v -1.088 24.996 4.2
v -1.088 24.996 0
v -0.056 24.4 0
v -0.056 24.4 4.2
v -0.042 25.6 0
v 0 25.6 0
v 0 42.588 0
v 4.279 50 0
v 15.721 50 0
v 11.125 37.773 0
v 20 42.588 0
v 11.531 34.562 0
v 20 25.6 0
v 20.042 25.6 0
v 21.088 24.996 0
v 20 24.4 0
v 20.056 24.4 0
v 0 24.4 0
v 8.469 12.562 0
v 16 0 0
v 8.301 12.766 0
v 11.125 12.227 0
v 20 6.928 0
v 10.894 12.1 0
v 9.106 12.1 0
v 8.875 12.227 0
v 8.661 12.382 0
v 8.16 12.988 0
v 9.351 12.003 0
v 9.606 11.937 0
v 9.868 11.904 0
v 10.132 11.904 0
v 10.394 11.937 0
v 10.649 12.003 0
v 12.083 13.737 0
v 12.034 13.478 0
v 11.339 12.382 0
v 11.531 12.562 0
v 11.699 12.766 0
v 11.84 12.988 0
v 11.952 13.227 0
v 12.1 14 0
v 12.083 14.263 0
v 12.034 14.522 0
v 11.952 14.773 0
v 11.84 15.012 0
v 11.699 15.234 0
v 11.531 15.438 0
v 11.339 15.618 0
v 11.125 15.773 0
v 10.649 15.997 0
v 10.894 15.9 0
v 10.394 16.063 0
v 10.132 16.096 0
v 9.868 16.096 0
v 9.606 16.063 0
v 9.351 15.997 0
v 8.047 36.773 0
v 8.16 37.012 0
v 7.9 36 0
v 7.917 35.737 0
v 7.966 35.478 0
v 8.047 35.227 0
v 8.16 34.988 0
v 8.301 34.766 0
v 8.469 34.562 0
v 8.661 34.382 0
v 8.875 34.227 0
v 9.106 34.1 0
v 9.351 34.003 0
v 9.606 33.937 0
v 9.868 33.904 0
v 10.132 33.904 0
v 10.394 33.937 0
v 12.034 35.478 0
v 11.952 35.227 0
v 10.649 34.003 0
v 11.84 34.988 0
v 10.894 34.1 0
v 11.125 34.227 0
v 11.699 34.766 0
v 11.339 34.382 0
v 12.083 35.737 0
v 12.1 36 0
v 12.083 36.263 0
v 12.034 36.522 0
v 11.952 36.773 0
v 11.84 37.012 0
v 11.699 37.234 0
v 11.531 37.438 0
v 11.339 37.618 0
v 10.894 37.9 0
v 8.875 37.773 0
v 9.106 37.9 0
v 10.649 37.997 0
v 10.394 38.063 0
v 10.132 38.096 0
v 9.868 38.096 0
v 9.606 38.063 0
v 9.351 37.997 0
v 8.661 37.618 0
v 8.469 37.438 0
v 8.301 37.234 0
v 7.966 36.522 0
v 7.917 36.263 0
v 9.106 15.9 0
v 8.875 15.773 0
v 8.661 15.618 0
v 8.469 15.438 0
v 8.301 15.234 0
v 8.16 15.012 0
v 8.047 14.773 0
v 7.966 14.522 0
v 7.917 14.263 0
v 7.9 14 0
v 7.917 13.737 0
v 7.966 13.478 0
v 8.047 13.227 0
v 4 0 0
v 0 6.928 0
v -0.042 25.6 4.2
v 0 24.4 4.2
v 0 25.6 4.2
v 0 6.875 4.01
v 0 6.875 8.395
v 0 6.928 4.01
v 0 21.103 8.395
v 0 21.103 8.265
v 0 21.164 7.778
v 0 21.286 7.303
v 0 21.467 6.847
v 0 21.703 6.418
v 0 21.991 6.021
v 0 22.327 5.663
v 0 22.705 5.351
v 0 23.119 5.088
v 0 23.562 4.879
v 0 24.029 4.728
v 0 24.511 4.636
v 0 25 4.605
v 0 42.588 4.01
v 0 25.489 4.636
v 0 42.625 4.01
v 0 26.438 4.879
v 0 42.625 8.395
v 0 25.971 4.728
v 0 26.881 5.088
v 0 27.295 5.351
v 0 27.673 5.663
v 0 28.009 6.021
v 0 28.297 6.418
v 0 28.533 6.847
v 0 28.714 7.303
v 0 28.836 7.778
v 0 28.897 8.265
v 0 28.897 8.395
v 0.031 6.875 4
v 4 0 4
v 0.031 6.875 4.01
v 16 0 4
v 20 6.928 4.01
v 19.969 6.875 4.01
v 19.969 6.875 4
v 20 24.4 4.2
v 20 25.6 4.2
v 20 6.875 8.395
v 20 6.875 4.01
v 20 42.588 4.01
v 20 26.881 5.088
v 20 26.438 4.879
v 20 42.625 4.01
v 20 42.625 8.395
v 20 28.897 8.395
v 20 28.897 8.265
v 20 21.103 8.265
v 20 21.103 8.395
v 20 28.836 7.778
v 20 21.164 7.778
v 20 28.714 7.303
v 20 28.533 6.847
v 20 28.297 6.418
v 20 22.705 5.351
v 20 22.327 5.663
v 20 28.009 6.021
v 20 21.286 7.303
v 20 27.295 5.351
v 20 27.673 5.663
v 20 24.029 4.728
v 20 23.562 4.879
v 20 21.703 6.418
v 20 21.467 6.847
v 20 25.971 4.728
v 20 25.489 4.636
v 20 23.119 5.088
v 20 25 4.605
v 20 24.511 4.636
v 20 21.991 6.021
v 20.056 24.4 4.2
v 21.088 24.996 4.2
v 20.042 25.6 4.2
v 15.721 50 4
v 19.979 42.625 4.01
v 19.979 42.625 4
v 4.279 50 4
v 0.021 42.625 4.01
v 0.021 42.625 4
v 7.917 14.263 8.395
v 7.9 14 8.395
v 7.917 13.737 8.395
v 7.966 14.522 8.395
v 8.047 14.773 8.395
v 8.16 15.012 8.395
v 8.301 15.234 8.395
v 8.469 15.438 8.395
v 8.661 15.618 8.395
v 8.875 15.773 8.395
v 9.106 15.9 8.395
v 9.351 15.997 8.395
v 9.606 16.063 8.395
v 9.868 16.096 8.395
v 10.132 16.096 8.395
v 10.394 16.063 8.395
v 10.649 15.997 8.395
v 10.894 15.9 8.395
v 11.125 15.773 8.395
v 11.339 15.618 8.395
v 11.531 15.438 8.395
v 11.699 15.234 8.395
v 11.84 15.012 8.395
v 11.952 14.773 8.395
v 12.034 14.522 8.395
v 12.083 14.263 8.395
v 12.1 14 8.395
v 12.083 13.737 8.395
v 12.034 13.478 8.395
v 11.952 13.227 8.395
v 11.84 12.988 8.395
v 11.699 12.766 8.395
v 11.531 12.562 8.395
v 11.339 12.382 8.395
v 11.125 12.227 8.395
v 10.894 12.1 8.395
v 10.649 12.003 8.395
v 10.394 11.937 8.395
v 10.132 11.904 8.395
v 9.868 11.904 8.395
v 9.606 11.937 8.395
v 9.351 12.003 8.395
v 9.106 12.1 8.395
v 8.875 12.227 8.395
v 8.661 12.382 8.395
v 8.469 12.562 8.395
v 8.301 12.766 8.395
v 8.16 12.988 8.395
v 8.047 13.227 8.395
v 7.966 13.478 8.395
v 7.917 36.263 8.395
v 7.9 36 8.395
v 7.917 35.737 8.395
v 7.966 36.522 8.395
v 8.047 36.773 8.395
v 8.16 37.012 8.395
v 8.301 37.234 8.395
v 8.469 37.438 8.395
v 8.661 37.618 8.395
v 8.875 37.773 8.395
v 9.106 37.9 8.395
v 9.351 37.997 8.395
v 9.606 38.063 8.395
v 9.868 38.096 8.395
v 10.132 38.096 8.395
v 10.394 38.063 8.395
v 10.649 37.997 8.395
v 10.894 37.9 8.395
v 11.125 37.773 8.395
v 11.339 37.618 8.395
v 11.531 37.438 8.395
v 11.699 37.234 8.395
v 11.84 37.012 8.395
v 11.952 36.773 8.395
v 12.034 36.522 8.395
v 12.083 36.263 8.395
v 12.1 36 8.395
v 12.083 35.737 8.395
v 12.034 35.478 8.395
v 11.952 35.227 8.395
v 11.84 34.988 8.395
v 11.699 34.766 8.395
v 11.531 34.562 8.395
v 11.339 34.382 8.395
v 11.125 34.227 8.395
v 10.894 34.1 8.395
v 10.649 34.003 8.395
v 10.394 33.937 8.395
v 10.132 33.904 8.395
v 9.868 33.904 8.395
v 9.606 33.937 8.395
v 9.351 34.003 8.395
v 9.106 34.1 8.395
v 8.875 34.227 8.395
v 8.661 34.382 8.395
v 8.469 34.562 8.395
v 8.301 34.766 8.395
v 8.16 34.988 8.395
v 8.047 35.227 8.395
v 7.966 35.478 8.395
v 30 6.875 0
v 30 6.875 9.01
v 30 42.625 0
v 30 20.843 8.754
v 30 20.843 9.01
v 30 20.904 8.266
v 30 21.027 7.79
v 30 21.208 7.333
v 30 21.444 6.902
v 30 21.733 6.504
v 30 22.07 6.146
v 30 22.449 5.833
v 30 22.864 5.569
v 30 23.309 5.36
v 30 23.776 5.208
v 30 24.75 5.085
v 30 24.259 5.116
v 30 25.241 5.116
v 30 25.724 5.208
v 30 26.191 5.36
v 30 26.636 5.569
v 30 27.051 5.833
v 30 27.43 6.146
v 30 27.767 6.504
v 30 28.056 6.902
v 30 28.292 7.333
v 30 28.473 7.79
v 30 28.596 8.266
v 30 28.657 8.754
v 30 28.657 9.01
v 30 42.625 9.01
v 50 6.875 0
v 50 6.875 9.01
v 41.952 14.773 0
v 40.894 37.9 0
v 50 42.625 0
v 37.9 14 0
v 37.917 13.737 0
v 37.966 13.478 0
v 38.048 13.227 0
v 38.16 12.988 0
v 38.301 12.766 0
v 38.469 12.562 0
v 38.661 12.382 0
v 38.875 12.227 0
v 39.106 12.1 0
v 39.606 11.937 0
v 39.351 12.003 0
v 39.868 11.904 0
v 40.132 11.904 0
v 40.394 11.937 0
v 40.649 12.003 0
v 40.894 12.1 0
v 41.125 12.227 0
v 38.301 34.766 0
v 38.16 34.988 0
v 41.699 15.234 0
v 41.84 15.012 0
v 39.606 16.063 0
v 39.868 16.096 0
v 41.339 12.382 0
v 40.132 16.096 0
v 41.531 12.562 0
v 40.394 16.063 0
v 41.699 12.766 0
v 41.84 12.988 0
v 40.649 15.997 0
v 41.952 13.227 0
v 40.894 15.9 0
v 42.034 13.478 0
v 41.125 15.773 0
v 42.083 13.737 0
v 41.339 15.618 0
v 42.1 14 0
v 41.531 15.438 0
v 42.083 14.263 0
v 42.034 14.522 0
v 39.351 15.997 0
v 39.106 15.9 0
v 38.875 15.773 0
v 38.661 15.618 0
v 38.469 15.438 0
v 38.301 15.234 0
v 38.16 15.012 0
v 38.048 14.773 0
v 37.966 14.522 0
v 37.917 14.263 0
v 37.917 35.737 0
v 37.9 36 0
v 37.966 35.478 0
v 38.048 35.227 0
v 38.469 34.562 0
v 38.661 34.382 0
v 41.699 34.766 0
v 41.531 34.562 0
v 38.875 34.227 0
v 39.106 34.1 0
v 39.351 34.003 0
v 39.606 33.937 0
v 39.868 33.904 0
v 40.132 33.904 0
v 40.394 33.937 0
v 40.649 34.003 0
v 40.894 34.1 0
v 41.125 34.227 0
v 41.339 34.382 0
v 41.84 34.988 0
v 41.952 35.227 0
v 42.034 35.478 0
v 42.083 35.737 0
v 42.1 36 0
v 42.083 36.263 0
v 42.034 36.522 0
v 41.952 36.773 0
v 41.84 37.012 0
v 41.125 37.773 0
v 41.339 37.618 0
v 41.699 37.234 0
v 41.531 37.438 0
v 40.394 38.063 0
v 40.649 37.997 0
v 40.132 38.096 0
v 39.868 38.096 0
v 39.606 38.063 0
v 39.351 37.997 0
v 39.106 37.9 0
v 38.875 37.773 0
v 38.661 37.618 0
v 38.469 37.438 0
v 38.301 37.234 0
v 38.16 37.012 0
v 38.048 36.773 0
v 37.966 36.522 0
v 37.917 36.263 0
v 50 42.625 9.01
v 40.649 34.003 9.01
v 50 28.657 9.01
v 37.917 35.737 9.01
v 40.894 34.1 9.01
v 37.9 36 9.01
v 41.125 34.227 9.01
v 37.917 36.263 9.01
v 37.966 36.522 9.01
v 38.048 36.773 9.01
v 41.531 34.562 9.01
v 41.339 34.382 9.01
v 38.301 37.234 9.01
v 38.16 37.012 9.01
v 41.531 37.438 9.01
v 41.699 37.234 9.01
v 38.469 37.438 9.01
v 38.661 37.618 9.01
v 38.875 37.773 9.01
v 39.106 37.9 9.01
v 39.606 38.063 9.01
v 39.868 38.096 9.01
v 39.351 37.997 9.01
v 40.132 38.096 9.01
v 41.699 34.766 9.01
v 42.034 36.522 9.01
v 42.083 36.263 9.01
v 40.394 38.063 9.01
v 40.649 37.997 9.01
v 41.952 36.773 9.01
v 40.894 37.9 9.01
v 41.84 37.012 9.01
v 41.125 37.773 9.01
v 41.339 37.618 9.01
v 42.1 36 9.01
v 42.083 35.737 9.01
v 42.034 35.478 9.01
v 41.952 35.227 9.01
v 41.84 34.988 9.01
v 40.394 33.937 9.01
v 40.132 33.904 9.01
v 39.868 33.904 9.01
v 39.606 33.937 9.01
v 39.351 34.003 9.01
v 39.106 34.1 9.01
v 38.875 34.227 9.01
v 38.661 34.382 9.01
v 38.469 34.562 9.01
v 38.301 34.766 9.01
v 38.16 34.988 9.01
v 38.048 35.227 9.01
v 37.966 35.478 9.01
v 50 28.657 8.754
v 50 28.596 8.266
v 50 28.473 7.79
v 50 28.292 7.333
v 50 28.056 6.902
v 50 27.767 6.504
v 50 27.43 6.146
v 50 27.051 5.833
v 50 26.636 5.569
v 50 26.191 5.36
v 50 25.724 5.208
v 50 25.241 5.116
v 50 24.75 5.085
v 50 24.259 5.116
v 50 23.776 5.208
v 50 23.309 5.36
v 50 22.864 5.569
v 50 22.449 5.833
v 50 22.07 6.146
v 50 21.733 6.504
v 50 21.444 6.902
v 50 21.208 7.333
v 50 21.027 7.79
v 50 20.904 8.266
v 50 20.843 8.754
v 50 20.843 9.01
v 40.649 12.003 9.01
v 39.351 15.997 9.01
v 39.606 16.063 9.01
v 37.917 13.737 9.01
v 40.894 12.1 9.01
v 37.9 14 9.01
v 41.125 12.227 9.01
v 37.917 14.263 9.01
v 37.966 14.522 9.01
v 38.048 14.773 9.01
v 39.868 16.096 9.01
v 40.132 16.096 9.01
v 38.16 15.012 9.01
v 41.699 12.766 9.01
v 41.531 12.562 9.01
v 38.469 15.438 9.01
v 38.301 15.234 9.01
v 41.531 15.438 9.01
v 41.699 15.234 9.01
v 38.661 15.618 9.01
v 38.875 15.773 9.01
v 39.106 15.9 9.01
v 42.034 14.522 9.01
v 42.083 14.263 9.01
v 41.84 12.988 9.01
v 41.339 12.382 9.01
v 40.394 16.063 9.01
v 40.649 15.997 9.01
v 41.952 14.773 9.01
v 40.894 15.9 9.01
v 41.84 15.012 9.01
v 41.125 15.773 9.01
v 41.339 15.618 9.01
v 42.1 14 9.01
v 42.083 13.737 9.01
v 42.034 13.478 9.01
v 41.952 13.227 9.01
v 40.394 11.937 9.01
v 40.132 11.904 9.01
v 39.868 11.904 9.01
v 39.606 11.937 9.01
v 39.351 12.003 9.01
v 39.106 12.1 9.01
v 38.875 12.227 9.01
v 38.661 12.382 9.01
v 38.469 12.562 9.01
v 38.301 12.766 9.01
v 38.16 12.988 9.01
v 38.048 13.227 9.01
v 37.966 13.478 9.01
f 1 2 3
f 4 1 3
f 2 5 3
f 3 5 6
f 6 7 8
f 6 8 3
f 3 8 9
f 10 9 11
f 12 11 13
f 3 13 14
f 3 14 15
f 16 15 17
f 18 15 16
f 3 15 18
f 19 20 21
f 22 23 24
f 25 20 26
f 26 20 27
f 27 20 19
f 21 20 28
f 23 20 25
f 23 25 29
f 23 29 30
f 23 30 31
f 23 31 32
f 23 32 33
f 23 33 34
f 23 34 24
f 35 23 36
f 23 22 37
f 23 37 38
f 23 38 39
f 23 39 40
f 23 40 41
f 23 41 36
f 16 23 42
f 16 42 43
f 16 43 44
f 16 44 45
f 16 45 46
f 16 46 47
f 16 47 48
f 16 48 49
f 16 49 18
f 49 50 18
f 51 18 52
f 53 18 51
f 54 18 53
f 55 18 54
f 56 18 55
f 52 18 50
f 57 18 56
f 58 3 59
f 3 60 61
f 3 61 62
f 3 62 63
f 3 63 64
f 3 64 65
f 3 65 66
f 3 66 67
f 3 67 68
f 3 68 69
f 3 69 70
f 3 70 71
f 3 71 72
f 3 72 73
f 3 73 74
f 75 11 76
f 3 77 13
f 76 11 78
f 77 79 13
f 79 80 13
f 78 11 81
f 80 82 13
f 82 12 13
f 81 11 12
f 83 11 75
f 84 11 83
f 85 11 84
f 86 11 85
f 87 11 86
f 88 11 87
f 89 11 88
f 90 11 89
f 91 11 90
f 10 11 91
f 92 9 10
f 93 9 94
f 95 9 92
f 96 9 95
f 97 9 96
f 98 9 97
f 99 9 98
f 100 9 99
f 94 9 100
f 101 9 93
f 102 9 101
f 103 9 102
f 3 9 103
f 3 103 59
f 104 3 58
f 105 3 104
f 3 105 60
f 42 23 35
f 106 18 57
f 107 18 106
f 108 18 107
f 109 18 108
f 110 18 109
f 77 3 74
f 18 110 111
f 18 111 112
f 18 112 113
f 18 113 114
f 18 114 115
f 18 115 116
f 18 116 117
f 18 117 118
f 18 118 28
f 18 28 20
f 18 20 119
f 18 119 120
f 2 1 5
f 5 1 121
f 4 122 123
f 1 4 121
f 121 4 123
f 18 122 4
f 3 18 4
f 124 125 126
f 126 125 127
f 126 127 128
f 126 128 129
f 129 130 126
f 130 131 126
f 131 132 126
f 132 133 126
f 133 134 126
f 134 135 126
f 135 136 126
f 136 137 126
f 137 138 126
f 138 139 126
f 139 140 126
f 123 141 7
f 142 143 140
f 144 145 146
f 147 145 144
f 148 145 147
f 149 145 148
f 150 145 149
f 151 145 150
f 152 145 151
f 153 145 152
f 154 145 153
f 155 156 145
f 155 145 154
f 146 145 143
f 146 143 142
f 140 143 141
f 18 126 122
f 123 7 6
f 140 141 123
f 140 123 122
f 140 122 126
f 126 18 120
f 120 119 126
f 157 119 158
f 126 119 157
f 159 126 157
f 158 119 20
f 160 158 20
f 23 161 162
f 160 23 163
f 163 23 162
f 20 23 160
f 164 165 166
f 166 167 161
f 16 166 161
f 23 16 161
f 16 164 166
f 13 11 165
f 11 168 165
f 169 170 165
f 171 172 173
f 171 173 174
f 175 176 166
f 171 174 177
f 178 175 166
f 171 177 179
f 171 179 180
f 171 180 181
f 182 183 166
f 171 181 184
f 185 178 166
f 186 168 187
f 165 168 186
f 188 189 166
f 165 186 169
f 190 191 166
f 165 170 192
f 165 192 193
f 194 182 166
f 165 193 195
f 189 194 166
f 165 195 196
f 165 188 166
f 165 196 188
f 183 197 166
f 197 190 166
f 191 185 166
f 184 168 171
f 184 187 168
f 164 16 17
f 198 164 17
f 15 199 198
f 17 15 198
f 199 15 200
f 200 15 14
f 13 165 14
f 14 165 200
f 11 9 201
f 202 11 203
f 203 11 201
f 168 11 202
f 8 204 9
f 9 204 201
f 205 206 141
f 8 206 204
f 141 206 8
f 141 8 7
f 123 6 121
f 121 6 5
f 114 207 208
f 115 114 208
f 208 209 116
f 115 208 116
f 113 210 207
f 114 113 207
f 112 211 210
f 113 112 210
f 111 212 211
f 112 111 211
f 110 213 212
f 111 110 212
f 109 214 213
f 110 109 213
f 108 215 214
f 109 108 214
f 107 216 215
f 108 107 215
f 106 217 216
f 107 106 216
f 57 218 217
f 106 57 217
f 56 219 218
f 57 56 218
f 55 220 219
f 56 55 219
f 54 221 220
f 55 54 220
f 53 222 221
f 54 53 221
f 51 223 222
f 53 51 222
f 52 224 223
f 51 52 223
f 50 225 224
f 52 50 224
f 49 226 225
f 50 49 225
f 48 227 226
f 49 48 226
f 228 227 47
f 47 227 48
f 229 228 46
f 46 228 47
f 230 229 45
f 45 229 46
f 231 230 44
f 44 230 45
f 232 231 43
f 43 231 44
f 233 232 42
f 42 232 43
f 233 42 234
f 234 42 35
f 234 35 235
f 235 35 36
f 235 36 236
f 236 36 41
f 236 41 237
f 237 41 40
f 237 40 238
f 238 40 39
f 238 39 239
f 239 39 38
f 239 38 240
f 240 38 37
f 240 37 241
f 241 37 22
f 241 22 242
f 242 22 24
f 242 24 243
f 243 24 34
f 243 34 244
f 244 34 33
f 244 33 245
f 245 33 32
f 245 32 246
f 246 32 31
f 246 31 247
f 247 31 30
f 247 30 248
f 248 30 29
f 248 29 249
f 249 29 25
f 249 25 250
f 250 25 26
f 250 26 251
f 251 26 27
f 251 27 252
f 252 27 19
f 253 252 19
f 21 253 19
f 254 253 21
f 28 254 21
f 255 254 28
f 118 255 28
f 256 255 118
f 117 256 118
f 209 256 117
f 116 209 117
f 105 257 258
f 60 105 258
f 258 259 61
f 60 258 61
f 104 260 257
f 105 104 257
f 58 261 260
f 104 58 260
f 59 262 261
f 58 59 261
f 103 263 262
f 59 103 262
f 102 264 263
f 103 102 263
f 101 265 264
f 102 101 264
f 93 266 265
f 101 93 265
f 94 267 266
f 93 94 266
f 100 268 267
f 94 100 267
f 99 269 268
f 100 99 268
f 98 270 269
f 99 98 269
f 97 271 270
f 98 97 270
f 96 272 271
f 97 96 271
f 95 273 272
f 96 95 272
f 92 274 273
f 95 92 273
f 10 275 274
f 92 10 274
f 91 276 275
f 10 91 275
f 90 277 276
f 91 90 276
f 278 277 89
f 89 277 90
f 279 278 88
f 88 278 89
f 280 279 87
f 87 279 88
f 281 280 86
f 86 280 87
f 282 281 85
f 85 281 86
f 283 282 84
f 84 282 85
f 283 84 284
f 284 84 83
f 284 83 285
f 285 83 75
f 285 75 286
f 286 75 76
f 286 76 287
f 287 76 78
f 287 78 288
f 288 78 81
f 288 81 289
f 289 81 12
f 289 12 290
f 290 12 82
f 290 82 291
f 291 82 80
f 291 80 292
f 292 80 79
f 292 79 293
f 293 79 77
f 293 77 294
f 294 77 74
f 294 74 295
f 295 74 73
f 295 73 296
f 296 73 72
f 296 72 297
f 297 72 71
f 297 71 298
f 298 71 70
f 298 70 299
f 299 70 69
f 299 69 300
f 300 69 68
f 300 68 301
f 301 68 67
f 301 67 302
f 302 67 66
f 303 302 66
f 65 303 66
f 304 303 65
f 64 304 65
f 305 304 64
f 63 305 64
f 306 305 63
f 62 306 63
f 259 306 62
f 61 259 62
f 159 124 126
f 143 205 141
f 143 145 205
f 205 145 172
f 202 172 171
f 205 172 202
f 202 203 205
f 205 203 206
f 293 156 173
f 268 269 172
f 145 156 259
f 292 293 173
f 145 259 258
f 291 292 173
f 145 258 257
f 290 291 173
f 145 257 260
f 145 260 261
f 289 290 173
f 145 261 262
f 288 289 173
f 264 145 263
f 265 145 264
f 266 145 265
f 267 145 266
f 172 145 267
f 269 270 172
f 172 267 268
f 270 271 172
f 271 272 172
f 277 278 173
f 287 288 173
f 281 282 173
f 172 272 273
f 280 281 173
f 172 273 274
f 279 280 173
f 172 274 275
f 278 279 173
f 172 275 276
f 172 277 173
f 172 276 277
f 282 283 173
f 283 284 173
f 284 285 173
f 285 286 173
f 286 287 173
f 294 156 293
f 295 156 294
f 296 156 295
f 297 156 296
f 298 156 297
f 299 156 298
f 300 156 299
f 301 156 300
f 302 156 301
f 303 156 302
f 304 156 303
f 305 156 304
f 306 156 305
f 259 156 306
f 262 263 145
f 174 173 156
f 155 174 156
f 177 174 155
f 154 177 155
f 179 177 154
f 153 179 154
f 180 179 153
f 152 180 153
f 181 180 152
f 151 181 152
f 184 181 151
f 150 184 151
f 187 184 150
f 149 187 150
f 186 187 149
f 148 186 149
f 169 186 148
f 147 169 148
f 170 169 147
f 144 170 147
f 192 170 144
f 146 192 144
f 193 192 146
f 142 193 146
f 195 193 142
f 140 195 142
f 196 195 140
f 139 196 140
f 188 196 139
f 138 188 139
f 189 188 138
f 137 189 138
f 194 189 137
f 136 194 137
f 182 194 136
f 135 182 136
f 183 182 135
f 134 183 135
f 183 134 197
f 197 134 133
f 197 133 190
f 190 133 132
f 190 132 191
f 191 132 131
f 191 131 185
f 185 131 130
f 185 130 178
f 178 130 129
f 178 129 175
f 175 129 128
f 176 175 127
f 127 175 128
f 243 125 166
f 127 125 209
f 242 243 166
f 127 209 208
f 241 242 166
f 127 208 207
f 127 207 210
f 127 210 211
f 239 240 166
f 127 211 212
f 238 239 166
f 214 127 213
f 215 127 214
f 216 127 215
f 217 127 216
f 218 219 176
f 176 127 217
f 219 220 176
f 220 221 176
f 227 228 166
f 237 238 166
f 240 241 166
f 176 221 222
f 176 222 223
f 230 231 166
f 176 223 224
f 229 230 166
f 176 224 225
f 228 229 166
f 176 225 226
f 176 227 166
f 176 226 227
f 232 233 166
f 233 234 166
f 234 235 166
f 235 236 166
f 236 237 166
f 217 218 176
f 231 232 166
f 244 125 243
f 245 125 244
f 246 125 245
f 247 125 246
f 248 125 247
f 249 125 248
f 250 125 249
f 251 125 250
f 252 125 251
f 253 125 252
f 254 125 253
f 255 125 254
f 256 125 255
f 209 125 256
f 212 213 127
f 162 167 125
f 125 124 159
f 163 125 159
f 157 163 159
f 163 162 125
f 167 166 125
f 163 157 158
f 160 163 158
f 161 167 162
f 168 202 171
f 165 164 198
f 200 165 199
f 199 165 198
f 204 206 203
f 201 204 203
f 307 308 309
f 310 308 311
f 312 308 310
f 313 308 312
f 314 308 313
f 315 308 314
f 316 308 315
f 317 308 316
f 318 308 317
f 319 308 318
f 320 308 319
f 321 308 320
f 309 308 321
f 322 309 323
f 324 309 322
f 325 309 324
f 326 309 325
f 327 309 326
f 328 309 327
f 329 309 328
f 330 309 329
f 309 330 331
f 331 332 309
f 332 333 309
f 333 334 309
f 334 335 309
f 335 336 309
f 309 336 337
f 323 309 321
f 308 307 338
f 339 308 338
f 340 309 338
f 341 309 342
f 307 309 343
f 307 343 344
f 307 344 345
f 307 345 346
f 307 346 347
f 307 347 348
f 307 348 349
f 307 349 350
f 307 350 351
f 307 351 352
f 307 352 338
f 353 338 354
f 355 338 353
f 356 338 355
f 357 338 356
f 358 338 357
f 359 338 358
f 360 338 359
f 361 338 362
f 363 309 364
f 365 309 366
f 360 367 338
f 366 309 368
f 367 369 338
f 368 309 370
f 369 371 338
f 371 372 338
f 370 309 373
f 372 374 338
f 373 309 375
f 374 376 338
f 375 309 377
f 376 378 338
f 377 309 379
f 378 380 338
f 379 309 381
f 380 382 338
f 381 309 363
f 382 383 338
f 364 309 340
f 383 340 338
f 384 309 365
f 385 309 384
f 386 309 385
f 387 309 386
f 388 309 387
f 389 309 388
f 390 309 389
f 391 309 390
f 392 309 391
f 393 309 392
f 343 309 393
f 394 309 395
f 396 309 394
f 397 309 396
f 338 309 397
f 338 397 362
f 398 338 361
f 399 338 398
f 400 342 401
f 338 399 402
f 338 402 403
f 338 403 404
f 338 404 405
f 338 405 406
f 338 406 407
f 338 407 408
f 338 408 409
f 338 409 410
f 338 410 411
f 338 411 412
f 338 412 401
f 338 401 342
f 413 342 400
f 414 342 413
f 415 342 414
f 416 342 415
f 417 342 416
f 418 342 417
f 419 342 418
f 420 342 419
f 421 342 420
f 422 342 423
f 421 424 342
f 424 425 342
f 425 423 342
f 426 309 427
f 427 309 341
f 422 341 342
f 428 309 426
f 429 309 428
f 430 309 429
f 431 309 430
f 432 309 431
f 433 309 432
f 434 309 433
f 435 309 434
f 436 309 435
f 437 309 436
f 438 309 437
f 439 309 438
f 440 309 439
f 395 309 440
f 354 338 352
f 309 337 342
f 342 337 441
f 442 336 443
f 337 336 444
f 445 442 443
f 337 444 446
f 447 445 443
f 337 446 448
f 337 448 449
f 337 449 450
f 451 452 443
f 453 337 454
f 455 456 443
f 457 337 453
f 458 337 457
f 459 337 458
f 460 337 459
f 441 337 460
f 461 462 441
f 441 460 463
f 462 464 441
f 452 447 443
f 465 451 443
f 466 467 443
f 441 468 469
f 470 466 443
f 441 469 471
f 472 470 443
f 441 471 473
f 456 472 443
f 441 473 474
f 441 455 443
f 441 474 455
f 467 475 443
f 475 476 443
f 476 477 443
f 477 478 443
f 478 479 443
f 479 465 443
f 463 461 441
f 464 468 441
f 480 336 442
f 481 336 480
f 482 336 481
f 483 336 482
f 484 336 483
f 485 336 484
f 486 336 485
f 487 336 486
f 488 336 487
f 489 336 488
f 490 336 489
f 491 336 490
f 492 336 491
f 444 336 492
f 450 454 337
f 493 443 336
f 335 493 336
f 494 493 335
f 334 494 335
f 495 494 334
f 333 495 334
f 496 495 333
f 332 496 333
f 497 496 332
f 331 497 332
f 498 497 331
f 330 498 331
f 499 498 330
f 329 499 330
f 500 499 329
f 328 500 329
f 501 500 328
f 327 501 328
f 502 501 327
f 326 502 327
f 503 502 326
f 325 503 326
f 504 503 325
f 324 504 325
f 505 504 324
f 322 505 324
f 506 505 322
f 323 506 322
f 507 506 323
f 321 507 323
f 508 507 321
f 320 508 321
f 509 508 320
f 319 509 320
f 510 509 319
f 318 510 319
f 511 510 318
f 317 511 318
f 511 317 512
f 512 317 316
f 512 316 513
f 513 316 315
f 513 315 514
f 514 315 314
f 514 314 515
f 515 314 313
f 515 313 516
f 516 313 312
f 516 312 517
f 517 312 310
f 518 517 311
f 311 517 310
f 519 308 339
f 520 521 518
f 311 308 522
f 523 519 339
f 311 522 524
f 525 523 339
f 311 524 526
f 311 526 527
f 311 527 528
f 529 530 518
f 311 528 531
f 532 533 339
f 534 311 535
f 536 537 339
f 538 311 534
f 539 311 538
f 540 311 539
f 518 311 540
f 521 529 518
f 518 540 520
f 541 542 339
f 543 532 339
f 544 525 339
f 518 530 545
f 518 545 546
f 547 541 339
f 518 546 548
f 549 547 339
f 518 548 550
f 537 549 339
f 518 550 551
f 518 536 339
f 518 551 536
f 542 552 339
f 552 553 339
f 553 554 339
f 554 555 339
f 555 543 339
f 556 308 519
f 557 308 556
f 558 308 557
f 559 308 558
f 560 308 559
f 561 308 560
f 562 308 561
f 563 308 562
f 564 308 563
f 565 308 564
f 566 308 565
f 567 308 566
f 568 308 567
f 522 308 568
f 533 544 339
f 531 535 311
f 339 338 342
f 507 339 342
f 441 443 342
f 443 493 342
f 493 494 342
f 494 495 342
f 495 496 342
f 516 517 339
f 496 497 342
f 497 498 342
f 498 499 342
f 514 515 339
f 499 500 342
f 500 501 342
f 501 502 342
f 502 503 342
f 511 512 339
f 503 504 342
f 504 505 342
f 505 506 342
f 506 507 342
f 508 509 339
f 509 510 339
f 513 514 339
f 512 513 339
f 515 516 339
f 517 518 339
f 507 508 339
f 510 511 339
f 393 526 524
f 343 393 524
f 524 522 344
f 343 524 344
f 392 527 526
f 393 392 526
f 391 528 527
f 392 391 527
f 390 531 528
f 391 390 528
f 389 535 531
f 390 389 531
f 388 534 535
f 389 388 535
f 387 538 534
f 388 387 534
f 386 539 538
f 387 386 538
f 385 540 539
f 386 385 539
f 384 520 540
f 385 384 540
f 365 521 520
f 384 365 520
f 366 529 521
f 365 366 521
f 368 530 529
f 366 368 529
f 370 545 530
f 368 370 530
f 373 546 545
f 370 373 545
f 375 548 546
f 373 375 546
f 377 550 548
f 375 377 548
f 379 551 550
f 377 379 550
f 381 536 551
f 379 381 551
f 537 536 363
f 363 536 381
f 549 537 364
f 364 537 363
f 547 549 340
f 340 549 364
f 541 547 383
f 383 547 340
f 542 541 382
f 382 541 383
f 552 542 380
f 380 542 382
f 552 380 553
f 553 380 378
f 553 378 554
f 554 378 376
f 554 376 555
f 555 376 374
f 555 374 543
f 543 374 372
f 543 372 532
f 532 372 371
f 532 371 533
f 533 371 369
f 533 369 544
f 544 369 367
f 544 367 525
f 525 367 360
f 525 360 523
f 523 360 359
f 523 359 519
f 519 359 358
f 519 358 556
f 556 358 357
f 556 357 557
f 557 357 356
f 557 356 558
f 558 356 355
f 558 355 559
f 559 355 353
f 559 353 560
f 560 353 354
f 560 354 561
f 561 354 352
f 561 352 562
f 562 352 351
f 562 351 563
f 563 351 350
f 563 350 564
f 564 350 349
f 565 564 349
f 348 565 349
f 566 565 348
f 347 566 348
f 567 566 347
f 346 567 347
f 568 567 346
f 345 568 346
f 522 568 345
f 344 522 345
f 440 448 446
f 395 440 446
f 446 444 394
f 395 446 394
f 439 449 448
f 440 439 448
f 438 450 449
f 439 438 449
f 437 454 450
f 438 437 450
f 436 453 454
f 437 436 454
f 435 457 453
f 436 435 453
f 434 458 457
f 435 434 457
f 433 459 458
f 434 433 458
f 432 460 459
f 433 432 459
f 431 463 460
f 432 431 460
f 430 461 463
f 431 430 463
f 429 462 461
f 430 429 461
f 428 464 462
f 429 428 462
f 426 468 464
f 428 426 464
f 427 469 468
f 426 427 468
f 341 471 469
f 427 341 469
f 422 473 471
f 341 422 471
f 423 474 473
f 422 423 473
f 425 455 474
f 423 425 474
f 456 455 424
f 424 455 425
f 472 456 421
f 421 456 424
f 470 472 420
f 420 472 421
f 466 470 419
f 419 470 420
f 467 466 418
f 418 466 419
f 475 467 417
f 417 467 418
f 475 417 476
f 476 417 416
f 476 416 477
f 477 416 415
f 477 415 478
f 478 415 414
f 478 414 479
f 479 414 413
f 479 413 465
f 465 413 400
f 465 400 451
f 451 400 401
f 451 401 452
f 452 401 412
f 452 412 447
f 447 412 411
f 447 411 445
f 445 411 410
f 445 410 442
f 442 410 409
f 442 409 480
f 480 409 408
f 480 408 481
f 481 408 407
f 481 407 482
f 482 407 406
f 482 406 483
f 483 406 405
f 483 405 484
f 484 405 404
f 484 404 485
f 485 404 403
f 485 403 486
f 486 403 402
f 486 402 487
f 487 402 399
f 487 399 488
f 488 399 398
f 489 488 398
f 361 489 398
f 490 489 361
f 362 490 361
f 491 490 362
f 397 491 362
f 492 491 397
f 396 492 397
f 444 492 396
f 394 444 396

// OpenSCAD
// file: functions.scad
// PRUSA Mendel  
// Functions used in many files
// GNU GPL v2
// Josef Průša
// josefprusa@me.com
// prusadjs.cz
// http://www.reprap.org/wiki/Prusa_Mendel
// http://github.com/prusajr/PrusaMendel

module nut(d,h,horizontal=true){
cornerdiameter =  (d / 2) / cos (180 / 6);
cylinder(h = h, r = cornerdiameter, $fn = 6);
if(horizontal){
for(i = [1:6]){
	rotate([0,0,60*i]) translate([-cornerdiameter-0.2,0,0]) rotate([0,0,-45]) cube(size = [2,2,h]);
}}
}

// By nophead
module polyhole(d,h) {
    n = max(round(2 * d),3);
    rotate([0,0,180])
        cylinder(h = h, r = (d / 2) / cos (180 / n), $fn = n);
}

module roundcorner(diameter){
	difference(){
		cube(size = [diameter,diameter,99], center = false);
		translate(v = [diameter, diameter, 0]) cylinder(h = 100, r=diameter, center=true);
	}
}
// file: metric.scad
// PRUSA Mendel  
// Default metric sizes
// GNU GPL v2
// Josef Průša
// josefprusa@me.com
// prusadjs.cz
// http://www.reprap.org/wiki/Prusa_Mendel
// http://github.com/prusajr/PrusaMendel

// DONT CHANGE THIS FILE! ALTER VALUES IN CONFIGURATION.SCAD INSTEAD

// RODS

threaded_rod_diameter = 8;
threaded_rod_diameter_horizontal = 8;
smooth_bar_diameter = 8;
smooth_bar_diameter_horizontal = 8;

// Nuts and bolts

m8_diameter = 8;
m8_nut_diameter = 14.5;

m4_diameter = 4;
m4_nut_diameter = 7.5;

m3_diameter = 3;
m3_nut_diameter = 5;

// Bushing holder

bushing_core_diameter = smooth_bar_diameter;
bushing_material_thickness = 1;

// Motors

motor_shaft = 5.1;
// file: configuration.scad
// PRUSA Mendel  
// Configuration file
// GNU GPL v2
// Josef Průša
// josefprusa@me.com
// prusadjs.cz
// http://www.reprap.org/wiki/Prusa_Mendel
// http://github.com/prusajr/PrusaMendel

// PLEASE SELECT ONE OF THE CONFIGURATIONS BELOW
// BY UN-COMMENTING IT

// Uncomment for metric settings
// METRIC METRIC METRIC METRIC METRIC METRIC METRIC METRIC 

include <metric.scad>;

// Uncomment for imperial settings
// IMPERIAL IMPERIAL IMPERIAL IMPERIAL IMPERIAL IMPERIAL IMPERIAL 

//include <sae.scad>;

//thin_wall = 3;
// LM8UU
//linear = false;

// override settings by customizing below
// CUSTOM CUSTOM CUSTOM CUSTOM CUSTOM CUSTOM CUSTOM CUSTOM CUSTOM

threaded_rod_diameter = 8.2;
threaded_rod_diameter_horizontal = 8.2;
smooth_bar_diameter = 8.3;
smooth_bar_diameter_horizontal = 8.3;

// Nuts and bolts

m8_diameter = 8.3;
m8_nut_diameter = 15;

m4_diameter = 4.2;
m4_nut_diameter = 9;

m3_diameter = 3.3;
m3_nut_diameter = 5.8;

///counted stuff
m3_nut_diameter_bigger = ((m3_nut_diameter  / 2) / cos (180 / 6))*2;

// functions 
include <functions.scad>
// main file
// f. beachler
// longevity software d.b.a. terawatt industries

include <configuration.scad>;

h = 4.0;       	// base thickness - error tolerance
ch = 9.0; 		// clamp thickness
m = h-1;			// marker height
o = 0.01;			//  overlap amount
hh = 4.0 + o;			// bar holder height
m4 = m4_diameter;

m3=m3_diameter;
m3n=m3_nut_diameter;
bar=smooth_bar_diameter_horizontal - 0.5 + o;

$fn=50;

x_and_z_bottom();

module x_and_z_bottom(h = h, ch = ch, m = m, hh = hh, m = m4, bar = bar) {
	xzrodholder(h, m, hh, m4, bar);
	rodholder_clamp(ch, m4, hh, bar);
}

module xzrodholder(yzh = h, yzm = m, yzhh = hh, yzn = m4, bar = bar)
{
	difference()
	{
		union()
		{
			translate([0,0,0]) rotate([0,0,0]) cube([20,50,yzh]);
			translate([20-o, 24.4, 0]) marker(yzm);
			translate([o, 24.4, 0]) mirror() marker(yzm);
			translate([0, 16.5, yzh - o]) rodholder(yzhh, bar);
		}
		translate([16,0,-o]) rotate([0,0,-30]) cube([10,10,yzh+2*o]);
		translate([4,0,-o]) mirror() rotate([0,0,-30]) cube([10,10,yzh+2*o]);
		translate([-9,47,-o]) rotate([0,0,-30]) cube([10,10,yzh+2*o]);
		translate([29,47,-o]) mirror() rotate([0,0,-30]) cube([10,10,yzh+2*o]);
		translate([10,10 + 4,-o]) cylinder(r=yzn/2,h=yzh+5);
		translate([10,40 - 4,-o]) cylinder(r=yzn/2,h=yzh+5);
	}

}

module marker(mm)
{
	difference()
	{
		cube([1.1,1.2,mm]);
		translate([1,-1.77,-o]) rotate([0,0,30]) cube([2,2,mm+2*o]);
		translate([0,1.23,-o]) rotate([0,0,-30]) cube([2,2,mm+2*o]);
	}
}

module rodholder(rhh = hh, bar = bar)
{
	difference()
	{
		translate([0, -9.625, 0]) rotate([0,0,0]) cube([20, 35.75, bar / 2 + 0.5]);
		translate([-0.01, 8.5, rhh + 0.5 + o]) rotate([0, 90, 0]) cylinder(r = bar / 2, h = 20 + 1);
	}
}

module rodholder_clamp(yzh = h + 2.0, yzn = m4, rhh = hh, m8 = bar) {
	difference() {
		translate([30, 6.875, 0]) rotate([0,0,0]) cube([20, 35.75, yzh + o]);	// 6.875 = 16.5 - 9.625
		translate([30 - o, 6.875 + 35.75 / 2, yzh]) rotate([0, 90, 0]) cylinder(r = bar / 2 + o, h = 20 + 1);
		translate([30 + 10,10 + 4,-o]) cylinder(r=yzn/2,h=yzh + bar);
		translate([30 + 10,40 - 4,-o]) cylinder(r=yzn/2,h=yzh + bar);
	}
}
